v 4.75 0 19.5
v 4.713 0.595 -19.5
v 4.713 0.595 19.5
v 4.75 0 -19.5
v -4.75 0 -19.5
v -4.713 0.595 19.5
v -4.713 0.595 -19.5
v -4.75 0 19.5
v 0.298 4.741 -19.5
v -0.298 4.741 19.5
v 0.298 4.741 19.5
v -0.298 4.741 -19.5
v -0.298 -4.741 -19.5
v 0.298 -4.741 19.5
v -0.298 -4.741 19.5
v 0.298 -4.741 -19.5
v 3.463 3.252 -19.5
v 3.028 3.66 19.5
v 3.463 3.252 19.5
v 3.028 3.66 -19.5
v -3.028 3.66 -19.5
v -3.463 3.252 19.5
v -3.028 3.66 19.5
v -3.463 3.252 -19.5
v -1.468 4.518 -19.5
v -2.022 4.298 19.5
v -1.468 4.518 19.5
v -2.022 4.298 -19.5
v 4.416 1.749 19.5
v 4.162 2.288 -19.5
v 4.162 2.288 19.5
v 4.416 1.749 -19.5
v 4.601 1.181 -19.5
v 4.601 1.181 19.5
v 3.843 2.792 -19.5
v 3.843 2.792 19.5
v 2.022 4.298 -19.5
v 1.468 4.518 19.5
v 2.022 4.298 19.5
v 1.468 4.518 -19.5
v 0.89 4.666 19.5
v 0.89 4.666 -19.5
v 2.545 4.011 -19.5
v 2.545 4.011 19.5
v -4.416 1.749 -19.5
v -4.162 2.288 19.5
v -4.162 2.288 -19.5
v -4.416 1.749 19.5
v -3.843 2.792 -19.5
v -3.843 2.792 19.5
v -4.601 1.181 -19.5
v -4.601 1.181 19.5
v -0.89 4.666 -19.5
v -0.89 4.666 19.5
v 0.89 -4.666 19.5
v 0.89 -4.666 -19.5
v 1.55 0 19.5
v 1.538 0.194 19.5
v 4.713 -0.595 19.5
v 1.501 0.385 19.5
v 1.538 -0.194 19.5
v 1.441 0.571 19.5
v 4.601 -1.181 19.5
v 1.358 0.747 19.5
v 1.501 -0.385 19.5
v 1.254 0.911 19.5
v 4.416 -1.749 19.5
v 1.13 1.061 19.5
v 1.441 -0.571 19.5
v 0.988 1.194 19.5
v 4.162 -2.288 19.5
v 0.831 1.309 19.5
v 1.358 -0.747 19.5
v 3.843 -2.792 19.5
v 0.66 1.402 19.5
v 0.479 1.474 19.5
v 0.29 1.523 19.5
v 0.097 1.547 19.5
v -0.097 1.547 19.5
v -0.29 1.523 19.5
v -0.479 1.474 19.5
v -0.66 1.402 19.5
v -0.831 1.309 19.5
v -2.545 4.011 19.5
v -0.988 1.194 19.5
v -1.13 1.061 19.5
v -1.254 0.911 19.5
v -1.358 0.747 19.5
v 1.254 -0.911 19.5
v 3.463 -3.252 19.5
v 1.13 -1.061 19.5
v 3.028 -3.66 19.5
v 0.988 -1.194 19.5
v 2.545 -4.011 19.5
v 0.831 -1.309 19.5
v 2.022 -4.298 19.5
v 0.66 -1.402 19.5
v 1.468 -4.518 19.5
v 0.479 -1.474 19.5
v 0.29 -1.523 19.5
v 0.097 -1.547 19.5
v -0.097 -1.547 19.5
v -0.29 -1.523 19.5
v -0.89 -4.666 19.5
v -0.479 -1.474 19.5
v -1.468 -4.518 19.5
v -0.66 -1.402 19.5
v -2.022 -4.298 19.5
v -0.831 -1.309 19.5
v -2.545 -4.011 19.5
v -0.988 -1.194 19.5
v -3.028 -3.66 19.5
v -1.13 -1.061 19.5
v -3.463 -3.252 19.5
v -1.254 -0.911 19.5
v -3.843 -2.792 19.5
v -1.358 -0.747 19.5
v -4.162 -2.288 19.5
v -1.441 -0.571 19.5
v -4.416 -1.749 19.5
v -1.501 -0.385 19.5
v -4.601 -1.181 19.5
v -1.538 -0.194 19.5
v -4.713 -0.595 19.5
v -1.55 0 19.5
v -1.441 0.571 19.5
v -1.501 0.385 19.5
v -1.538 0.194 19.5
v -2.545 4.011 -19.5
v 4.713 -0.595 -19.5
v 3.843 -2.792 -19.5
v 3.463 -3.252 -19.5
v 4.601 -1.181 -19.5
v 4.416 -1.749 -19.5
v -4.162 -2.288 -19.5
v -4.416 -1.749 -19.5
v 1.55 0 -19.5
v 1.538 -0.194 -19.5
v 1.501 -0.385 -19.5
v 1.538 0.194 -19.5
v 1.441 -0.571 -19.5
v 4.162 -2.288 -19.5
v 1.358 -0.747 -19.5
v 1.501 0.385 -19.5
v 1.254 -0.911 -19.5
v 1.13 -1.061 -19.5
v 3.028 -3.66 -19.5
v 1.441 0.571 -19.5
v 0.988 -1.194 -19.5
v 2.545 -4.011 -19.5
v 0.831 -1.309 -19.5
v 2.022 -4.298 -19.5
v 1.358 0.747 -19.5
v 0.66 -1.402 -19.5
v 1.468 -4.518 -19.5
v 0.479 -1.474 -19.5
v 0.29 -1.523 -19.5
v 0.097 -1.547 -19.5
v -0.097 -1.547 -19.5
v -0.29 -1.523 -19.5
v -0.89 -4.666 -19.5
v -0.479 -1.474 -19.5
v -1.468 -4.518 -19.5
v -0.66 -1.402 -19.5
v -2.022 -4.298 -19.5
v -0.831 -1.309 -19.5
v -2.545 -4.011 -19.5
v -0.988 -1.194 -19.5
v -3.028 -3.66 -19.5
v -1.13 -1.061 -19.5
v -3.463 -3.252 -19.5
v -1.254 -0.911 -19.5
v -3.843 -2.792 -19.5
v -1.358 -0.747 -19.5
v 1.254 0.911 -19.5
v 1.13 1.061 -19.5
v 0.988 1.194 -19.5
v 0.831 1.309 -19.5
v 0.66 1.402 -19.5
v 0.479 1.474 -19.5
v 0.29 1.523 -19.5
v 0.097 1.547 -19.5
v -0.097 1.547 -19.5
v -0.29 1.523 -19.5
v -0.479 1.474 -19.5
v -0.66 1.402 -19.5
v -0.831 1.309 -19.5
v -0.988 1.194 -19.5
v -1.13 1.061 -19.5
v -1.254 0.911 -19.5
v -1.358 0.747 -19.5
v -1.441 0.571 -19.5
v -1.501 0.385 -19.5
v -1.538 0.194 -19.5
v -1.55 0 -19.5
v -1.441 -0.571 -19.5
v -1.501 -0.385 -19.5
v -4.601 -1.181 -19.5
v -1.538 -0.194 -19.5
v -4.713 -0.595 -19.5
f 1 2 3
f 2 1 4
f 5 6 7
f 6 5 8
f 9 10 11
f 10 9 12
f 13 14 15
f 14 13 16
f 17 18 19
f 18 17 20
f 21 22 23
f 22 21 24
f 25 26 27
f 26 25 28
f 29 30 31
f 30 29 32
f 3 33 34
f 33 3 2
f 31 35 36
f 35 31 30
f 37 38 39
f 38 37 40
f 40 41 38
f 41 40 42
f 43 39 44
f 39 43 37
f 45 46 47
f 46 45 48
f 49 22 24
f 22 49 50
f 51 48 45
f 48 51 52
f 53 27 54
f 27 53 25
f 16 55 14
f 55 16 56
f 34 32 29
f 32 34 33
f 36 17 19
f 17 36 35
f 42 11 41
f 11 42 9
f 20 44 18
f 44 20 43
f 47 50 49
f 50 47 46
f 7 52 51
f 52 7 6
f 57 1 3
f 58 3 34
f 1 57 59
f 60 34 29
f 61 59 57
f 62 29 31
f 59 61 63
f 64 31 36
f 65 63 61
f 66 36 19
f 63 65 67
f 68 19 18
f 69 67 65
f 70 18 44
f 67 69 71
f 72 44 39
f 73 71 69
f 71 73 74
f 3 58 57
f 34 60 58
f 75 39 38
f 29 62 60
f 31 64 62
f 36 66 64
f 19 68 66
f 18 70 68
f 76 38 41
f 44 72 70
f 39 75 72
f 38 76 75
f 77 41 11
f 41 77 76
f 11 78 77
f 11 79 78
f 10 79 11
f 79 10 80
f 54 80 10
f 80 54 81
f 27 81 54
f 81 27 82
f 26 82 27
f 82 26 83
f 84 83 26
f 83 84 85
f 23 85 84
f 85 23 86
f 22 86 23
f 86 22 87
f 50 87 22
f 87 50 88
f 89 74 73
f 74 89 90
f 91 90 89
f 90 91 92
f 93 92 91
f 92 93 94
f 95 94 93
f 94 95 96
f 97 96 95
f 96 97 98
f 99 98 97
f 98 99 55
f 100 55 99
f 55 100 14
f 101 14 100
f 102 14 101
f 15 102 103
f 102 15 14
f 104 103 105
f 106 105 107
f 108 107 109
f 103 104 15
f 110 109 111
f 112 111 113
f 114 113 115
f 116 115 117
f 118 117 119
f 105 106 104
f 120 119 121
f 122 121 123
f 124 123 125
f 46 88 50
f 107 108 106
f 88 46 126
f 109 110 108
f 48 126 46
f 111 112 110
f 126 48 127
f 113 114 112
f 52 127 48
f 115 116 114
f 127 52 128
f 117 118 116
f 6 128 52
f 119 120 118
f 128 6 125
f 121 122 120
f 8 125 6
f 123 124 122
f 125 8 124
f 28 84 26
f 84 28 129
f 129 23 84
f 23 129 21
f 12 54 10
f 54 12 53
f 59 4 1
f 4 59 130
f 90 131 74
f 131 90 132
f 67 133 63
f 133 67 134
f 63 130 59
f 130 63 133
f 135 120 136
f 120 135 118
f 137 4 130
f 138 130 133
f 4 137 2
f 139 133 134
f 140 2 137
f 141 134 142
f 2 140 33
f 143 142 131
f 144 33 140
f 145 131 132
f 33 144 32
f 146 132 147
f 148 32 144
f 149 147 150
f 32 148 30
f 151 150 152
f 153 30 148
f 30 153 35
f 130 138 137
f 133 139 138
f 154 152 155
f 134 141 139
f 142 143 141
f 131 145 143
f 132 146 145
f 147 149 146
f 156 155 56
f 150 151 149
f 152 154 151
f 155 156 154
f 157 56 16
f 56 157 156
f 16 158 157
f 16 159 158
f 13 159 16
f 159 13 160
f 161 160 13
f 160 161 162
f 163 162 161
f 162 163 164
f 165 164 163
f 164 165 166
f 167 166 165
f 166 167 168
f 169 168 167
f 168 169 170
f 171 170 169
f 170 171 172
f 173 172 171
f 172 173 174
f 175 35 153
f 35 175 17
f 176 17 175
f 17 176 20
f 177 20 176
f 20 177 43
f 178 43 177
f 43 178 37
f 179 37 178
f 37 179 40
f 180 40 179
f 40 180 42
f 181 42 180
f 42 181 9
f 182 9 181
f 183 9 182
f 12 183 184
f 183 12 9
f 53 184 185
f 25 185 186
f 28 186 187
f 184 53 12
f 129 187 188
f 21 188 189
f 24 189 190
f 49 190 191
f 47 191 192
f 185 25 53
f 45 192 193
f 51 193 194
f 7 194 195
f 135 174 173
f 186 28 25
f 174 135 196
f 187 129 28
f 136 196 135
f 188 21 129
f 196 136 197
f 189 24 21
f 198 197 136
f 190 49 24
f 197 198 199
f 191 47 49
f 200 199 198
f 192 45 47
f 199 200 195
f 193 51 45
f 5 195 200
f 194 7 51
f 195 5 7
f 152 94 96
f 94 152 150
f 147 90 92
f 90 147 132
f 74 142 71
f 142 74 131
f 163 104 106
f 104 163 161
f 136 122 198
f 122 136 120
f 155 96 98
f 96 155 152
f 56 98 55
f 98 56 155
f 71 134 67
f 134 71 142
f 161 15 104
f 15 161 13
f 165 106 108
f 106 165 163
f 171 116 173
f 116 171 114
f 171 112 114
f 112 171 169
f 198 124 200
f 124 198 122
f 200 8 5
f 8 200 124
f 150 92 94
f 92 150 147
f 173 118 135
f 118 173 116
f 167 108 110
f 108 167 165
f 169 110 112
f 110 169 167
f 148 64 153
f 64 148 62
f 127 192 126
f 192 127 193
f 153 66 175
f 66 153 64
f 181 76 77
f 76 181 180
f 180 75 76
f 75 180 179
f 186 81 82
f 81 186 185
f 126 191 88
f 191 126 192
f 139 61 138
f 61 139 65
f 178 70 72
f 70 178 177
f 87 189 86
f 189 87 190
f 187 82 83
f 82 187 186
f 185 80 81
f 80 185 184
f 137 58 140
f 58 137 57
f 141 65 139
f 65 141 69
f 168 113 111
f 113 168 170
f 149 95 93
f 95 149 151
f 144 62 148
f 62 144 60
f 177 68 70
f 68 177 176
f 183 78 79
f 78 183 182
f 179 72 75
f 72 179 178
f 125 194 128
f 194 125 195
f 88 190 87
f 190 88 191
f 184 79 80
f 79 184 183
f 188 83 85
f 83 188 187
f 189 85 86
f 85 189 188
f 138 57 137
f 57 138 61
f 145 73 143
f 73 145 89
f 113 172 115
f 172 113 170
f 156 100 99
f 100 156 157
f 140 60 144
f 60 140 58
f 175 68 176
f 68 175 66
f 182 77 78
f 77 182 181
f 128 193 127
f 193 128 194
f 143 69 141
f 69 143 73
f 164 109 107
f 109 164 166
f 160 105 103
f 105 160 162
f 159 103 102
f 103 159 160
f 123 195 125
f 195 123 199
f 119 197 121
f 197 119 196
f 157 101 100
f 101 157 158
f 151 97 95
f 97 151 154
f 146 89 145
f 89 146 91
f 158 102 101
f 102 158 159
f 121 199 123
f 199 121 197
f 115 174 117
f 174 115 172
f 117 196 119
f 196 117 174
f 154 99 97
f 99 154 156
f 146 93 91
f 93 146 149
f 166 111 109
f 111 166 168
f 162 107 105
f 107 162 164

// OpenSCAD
$fn = 50;


difference() {
	union() {
		translate(v = [0, 0, -19.5000000000]) {
			cylinder(h = 39, r = 4.7500000000);
		}
	}
	union() {
		translate(v = [0, 0, -100.0000000000]) {
			cylinder(h = 200, r = 1.5500000000);
		}
	}
}
